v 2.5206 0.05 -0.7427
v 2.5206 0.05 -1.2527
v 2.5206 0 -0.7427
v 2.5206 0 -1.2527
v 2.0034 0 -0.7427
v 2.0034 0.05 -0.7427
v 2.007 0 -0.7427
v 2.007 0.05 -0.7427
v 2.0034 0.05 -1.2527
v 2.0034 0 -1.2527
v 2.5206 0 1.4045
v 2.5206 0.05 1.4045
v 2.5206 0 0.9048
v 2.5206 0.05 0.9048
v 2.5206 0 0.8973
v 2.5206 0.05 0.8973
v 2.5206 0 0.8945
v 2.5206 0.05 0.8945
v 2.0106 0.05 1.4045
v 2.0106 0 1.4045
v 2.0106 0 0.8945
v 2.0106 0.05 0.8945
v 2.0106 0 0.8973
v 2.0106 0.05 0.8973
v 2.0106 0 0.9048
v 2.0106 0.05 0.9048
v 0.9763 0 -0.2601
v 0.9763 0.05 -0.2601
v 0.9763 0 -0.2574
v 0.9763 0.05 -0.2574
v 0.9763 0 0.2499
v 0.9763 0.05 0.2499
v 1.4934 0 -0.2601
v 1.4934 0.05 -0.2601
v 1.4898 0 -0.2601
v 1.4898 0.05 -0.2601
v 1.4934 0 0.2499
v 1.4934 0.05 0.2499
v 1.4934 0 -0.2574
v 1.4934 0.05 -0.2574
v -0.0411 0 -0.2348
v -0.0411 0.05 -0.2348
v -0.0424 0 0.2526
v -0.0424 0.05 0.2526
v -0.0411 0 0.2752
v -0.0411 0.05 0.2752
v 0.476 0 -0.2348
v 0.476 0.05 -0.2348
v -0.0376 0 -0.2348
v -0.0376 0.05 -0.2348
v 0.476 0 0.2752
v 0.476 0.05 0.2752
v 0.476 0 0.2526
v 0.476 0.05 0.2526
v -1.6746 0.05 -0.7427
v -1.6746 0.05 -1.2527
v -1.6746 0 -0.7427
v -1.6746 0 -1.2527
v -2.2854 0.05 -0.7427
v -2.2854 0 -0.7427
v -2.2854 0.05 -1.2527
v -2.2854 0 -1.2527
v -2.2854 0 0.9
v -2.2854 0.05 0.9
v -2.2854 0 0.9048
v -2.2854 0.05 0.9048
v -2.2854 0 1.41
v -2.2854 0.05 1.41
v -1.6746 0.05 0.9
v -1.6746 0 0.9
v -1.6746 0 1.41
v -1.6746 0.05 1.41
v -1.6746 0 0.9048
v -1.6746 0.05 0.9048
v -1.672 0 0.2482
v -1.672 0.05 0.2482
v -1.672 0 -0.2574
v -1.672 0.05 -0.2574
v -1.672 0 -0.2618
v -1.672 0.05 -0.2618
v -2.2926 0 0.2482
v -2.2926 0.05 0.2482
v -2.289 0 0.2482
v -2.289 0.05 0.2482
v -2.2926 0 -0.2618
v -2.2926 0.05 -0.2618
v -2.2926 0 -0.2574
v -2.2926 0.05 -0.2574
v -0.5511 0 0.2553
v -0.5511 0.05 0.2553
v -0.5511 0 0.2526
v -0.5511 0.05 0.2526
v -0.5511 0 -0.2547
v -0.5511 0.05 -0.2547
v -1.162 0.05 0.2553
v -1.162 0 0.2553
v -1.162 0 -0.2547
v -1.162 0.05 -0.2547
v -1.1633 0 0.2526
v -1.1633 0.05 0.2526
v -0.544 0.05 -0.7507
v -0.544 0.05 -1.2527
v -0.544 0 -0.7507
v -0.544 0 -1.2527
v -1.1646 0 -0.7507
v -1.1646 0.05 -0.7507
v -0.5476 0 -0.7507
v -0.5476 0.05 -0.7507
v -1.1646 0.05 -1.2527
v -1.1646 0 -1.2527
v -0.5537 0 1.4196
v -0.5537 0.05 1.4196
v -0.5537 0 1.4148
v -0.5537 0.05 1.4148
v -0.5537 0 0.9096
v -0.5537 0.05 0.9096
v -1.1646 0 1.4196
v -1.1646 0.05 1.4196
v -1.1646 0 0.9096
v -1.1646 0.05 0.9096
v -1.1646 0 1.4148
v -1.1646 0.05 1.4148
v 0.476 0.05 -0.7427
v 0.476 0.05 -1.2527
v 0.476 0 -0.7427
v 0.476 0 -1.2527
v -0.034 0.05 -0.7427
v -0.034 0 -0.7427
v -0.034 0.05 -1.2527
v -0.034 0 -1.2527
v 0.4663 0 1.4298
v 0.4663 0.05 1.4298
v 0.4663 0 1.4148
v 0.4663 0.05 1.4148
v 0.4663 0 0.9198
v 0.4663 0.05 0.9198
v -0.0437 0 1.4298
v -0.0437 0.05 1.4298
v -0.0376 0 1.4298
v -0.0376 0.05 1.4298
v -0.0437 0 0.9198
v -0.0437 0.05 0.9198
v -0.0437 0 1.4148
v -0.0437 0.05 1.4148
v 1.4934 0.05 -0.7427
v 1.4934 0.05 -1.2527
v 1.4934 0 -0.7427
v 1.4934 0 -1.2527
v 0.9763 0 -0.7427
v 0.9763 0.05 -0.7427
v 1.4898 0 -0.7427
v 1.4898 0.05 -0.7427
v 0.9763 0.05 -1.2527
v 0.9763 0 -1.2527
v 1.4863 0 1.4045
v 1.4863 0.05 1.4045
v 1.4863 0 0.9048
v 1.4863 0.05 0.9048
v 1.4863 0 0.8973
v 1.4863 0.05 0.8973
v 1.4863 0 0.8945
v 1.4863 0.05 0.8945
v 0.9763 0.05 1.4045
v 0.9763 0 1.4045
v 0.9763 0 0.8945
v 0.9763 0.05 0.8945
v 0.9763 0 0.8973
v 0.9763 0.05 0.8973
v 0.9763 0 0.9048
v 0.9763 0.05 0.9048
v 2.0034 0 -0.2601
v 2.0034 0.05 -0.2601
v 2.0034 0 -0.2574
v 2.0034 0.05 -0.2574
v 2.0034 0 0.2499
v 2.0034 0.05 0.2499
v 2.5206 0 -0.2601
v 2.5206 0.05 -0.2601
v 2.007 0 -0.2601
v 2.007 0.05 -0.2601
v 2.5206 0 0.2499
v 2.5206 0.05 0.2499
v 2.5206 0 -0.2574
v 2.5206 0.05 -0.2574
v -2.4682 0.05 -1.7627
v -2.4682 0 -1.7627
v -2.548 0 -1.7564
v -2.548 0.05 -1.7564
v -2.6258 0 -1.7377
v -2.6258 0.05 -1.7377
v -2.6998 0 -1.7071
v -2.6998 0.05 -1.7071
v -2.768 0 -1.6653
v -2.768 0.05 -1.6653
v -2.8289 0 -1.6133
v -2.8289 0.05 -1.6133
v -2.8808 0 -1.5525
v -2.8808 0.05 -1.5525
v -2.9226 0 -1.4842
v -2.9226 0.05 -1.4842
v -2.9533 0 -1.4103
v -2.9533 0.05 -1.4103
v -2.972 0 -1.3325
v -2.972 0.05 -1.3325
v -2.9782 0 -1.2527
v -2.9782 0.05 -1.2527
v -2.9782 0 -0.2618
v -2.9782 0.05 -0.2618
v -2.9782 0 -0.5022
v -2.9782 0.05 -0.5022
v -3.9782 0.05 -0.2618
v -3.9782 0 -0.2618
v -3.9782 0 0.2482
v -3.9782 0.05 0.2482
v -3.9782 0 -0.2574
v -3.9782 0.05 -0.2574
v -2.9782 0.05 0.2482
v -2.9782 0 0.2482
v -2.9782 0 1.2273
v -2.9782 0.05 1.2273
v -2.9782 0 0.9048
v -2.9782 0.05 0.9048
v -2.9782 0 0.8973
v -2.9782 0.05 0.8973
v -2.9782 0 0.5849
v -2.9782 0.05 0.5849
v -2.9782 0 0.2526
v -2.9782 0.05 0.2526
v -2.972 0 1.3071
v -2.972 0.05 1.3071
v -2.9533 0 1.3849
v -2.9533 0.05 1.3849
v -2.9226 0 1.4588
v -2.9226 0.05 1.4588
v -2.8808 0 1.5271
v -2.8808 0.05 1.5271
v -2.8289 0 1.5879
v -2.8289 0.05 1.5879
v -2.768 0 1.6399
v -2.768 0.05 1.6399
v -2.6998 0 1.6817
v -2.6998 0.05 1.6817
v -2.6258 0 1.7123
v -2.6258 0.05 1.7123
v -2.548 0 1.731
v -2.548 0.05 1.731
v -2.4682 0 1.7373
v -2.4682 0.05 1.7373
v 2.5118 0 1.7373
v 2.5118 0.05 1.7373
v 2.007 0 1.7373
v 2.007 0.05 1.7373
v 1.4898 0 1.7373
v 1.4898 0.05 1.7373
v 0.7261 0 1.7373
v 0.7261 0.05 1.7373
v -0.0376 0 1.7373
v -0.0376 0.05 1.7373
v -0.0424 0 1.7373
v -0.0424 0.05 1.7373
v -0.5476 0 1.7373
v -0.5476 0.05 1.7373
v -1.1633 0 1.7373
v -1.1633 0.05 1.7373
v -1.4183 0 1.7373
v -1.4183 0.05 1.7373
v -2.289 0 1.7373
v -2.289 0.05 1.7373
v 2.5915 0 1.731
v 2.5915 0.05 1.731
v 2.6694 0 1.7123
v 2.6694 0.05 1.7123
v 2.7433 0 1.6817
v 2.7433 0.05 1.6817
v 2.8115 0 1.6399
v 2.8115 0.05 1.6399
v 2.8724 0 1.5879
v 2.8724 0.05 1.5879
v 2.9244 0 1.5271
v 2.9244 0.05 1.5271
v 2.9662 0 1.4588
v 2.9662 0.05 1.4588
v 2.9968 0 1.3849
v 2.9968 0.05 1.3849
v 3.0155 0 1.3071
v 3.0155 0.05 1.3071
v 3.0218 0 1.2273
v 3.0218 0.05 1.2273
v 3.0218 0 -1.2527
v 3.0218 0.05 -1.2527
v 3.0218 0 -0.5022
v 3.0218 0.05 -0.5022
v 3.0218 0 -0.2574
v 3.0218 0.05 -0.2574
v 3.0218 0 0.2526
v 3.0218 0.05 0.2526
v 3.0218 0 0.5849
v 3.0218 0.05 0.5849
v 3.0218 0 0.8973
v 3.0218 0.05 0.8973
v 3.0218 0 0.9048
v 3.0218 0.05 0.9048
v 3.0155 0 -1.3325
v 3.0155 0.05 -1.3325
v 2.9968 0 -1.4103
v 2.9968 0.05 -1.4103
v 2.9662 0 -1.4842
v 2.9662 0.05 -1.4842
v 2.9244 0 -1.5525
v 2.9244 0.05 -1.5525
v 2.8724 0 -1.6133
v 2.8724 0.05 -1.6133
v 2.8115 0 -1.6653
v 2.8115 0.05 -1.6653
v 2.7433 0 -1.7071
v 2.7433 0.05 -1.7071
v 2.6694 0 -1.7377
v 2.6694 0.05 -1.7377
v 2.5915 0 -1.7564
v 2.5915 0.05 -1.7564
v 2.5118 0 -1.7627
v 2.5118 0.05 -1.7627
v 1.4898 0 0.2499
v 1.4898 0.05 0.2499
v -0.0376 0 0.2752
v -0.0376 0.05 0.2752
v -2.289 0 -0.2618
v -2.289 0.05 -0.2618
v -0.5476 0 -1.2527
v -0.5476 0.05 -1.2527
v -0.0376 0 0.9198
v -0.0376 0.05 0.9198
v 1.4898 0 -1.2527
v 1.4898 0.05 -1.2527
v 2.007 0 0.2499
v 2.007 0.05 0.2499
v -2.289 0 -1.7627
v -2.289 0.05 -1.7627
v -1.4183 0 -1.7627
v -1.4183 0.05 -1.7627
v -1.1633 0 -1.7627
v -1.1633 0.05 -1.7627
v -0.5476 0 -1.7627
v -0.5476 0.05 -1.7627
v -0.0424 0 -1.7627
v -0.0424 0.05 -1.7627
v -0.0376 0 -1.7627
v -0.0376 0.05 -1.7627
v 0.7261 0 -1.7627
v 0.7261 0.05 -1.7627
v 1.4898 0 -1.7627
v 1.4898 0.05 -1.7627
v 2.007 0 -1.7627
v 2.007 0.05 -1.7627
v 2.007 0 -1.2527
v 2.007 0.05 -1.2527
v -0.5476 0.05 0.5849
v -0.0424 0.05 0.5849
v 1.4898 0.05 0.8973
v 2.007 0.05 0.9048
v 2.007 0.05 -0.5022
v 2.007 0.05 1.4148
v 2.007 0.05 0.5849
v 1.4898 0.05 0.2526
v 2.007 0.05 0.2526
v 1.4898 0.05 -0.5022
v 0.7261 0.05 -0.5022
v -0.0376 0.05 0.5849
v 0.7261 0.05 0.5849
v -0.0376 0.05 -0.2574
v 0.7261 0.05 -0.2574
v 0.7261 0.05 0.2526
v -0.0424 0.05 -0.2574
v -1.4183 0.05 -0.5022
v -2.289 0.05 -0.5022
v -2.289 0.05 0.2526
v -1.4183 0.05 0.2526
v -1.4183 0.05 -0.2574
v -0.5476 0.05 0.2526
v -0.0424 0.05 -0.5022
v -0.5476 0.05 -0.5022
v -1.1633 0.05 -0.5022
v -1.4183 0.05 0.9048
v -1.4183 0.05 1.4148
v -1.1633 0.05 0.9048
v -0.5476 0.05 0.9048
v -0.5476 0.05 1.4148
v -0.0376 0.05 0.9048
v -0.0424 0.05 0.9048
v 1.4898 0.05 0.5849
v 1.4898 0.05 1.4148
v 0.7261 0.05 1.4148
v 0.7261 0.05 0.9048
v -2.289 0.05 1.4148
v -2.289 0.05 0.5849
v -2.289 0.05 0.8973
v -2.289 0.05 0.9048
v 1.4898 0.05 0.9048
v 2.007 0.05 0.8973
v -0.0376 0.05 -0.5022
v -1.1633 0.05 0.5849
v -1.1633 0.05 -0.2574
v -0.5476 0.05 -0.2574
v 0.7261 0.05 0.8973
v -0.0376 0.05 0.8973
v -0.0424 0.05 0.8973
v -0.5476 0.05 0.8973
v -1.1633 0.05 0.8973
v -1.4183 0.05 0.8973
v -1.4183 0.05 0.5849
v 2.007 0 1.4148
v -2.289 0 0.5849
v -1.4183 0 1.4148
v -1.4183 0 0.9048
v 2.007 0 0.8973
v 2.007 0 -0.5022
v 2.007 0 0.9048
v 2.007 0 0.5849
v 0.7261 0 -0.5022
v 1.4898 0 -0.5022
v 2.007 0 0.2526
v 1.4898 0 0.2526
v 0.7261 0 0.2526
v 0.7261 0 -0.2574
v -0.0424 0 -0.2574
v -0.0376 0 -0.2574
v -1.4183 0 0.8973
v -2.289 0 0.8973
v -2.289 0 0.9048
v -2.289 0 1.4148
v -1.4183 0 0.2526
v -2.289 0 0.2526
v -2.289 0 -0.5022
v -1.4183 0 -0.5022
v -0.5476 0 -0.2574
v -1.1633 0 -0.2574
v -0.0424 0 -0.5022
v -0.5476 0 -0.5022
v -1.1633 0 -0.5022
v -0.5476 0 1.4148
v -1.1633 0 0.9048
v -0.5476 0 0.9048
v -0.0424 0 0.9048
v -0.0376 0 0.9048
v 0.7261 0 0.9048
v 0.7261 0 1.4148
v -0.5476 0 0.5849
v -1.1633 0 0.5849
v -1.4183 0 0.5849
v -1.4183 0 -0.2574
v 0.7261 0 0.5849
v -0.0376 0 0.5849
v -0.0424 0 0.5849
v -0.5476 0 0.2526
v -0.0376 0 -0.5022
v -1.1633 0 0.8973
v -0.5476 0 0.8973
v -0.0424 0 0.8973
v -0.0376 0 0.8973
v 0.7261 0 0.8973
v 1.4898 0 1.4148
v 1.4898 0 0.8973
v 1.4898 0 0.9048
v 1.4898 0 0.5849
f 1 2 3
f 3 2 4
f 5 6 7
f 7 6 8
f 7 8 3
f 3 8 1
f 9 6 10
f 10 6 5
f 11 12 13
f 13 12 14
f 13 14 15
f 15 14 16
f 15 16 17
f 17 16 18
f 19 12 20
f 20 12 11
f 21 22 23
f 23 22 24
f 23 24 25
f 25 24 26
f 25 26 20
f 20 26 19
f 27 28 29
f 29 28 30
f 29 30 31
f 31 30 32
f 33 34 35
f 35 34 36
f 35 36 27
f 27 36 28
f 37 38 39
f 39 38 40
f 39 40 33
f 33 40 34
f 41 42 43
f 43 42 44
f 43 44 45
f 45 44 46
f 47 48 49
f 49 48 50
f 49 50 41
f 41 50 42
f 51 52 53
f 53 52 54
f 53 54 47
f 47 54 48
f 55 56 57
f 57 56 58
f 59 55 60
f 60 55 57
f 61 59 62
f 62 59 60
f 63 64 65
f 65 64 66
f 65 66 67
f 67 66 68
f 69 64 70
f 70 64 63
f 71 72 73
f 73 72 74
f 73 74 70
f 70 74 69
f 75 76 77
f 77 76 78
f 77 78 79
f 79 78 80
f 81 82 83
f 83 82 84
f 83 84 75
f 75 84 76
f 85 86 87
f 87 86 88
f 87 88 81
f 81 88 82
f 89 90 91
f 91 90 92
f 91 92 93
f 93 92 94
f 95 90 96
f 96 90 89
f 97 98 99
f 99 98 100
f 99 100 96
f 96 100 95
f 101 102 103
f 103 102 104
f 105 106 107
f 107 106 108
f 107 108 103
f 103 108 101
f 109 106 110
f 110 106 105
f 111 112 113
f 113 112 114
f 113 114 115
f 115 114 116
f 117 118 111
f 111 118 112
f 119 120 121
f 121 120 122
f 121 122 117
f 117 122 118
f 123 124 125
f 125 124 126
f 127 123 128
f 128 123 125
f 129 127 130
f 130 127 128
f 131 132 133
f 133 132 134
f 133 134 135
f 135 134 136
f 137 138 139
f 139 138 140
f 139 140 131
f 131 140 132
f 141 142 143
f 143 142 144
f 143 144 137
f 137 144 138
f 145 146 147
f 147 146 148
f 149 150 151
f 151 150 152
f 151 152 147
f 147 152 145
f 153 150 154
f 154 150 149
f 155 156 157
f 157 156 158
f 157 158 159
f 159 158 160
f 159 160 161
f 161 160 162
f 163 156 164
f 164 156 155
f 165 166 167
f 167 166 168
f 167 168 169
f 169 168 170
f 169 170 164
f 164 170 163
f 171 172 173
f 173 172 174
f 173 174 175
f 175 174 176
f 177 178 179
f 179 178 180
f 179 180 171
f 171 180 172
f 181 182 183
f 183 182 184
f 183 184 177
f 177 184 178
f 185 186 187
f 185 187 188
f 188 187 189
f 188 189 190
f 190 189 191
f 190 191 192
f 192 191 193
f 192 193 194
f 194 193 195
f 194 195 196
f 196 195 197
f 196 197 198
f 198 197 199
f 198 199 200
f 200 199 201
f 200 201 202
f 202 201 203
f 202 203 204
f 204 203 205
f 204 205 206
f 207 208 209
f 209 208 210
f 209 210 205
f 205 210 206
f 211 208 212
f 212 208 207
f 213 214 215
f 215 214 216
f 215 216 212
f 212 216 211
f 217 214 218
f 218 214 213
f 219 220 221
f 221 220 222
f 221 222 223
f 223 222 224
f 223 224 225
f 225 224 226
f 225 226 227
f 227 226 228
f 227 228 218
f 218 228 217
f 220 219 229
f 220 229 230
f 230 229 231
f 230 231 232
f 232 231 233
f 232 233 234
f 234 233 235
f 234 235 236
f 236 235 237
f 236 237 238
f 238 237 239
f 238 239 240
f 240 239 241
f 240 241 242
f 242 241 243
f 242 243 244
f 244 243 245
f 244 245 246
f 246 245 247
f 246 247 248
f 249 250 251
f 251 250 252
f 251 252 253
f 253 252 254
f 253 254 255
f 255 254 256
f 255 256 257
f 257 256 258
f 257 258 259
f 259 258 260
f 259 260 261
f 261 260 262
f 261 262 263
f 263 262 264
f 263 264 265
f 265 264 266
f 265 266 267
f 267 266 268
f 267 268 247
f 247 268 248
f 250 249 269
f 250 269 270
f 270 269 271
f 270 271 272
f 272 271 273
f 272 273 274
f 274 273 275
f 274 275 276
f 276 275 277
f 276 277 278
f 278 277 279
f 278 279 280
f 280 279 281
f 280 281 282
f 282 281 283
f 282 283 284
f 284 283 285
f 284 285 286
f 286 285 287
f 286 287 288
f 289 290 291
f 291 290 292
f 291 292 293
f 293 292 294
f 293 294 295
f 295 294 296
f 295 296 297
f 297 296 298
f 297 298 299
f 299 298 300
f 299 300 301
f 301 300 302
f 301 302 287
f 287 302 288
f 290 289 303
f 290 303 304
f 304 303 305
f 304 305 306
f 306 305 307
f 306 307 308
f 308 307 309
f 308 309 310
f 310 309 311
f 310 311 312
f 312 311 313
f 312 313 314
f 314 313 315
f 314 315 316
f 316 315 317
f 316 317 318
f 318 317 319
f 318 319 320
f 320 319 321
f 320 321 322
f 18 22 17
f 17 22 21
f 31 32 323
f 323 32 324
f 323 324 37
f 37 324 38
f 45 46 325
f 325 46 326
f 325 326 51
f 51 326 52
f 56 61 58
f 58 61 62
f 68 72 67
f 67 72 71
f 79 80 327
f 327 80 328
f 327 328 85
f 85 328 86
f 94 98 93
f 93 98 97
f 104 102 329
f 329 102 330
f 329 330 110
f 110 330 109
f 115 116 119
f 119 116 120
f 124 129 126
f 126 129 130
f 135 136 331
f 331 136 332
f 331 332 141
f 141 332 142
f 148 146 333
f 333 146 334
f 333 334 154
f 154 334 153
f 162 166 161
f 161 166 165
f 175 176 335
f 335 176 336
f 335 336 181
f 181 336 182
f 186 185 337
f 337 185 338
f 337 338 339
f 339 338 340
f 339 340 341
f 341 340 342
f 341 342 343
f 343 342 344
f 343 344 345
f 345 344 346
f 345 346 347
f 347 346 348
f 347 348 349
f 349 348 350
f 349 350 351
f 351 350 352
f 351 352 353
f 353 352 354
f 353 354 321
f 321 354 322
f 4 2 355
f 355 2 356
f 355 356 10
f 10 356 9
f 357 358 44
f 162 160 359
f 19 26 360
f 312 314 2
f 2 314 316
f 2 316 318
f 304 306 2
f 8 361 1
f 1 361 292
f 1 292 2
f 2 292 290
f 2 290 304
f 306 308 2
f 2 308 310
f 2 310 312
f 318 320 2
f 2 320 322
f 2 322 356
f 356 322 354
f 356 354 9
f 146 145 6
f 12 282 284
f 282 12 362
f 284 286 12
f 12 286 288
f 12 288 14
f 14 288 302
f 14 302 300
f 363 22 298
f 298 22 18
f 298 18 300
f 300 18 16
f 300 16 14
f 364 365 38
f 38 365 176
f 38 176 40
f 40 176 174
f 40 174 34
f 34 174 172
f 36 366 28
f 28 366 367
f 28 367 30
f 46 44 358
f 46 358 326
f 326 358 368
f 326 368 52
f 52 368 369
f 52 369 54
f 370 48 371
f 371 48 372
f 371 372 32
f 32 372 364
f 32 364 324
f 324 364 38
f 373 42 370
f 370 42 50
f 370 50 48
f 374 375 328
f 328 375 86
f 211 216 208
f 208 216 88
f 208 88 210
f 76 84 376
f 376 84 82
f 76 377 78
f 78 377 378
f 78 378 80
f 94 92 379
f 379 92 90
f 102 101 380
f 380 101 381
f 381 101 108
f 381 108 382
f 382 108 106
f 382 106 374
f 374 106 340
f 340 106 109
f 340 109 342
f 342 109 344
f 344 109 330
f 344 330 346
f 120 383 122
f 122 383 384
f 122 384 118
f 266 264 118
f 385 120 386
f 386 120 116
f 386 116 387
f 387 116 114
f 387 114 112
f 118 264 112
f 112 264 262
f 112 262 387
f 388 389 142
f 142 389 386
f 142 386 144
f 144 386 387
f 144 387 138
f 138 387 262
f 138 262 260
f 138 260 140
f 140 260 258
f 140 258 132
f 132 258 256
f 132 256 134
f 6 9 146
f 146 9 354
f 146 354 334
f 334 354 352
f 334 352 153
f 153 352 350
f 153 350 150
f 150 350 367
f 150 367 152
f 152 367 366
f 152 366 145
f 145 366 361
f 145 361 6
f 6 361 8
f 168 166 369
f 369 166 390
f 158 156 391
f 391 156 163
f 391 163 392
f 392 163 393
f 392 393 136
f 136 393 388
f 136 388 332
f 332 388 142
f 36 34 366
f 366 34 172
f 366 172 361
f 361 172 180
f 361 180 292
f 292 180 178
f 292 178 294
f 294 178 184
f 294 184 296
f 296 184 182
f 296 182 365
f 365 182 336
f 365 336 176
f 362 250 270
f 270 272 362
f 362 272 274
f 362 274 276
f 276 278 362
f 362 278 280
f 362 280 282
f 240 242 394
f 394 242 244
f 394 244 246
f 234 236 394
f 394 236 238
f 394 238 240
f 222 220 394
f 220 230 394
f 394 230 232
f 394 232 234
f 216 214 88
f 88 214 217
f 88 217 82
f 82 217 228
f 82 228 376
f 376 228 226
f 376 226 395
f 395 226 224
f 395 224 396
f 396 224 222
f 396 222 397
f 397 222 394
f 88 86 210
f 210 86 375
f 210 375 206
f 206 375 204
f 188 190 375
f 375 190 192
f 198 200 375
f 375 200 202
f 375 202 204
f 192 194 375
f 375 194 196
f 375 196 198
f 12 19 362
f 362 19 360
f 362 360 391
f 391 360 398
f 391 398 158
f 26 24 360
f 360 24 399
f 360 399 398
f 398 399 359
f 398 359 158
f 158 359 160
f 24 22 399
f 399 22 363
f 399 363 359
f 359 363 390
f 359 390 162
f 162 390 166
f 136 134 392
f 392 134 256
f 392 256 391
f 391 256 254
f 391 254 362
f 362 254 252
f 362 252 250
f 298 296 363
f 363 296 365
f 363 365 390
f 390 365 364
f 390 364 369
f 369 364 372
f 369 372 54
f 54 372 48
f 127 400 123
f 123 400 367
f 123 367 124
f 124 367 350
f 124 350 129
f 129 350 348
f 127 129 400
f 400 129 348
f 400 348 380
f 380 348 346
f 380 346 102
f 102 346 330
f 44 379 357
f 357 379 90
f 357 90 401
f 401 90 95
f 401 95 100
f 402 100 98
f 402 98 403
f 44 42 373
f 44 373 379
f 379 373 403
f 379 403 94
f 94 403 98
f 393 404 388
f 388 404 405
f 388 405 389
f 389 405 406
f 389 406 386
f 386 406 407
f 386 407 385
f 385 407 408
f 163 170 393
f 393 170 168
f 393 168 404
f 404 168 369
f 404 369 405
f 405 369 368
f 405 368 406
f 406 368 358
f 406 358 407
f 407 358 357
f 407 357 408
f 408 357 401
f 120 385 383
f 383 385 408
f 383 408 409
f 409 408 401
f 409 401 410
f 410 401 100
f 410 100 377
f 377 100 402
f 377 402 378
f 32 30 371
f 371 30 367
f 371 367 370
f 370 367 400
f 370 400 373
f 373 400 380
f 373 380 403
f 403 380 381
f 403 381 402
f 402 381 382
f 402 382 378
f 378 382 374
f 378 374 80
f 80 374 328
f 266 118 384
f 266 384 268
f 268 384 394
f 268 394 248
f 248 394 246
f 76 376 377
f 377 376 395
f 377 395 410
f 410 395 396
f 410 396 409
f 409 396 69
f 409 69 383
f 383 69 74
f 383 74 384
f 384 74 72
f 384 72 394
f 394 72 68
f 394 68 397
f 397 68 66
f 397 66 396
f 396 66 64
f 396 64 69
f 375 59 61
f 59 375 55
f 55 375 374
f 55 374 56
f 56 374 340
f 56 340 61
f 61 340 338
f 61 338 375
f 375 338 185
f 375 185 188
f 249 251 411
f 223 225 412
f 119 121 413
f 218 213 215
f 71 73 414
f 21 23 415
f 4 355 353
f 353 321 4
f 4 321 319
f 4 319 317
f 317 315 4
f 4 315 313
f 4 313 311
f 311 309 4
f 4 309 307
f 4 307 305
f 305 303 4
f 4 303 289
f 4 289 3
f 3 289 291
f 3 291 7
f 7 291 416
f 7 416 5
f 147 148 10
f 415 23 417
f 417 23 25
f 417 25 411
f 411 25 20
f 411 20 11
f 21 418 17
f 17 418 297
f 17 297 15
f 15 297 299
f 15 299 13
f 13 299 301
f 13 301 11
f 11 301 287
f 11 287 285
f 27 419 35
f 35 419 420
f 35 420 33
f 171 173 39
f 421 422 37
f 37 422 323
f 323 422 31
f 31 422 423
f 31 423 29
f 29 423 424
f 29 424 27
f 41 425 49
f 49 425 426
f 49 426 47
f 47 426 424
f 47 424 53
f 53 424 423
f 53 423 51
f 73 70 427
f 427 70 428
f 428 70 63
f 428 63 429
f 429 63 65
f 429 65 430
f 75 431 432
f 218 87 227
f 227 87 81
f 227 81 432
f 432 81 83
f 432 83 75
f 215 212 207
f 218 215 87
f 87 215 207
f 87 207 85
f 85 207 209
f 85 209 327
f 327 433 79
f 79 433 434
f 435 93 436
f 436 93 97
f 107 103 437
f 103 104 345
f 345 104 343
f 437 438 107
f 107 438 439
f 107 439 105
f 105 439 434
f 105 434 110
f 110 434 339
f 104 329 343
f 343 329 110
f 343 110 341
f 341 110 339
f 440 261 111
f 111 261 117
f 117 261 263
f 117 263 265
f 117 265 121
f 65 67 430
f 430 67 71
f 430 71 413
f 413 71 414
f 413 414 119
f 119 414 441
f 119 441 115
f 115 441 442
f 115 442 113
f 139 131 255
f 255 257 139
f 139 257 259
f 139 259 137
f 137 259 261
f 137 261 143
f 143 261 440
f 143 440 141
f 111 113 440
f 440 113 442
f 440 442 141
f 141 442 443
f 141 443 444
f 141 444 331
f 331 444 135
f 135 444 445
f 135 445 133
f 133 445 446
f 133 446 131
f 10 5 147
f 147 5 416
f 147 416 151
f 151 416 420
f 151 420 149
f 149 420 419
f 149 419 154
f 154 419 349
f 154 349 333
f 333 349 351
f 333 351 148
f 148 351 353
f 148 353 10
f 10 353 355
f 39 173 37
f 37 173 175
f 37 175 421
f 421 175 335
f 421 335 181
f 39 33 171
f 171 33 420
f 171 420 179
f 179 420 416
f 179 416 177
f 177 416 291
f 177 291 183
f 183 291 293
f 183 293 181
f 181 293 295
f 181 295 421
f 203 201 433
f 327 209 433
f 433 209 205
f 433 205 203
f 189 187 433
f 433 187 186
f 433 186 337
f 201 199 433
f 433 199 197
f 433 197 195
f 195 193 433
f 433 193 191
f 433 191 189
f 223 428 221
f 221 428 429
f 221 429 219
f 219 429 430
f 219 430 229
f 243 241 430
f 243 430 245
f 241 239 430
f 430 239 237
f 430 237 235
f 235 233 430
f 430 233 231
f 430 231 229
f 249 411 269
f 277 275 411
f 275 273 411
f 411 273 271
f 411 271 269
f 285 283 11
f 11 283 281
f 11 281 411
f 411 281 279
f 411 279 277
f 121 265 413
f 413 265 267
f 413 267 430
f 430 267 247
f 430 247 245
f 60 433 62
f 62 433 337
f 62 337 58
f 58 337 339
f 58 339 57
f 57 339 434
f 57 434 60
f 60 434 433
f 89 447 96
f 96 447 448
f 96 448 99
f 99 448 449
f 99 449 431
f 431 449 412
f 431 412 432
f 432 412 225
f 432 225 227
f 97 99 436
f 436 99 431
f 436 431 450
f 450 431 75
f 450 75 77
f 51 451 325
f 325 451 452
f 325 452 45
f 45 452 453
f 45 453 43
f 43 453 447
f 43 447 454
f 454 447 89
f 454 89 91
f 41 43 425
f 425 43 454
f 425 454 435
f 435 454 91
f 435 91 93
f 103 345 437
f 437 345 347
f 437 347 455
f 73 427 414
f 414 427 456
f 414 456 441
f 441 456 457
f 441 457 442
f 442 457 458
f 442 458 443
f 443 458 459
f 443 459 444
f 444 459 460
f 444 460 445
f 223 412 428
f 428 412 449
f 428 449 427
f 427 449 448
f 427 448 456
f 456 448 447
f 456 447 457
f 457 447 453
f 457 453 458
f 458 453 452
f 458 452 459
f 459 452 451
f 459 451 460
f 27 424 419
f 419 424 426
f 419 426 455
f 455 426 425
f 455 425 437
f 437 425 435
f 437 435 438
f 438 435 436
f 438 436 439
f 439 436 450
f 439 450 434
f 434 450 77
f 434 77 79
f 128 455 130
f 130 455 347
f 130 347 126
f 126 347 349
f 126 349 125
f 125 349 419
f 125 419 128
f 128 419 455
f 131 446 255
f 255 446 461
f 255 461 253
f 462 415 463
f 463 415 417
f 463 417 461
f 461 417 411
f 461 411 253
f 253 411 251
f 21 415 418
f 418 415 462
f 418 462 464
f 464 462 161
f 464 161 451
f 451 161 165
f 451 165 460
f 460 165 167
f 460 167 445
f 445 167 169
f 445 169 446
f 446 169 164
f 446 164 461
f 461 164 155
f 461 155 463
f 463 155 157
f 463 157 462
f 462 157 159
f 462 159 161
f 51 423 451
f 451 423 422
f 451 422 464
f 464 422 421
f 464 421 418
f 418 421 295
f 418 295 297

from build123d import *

# Parameters (mm, degrees)
SKETCH5_W           = 0.517150716
SKETCH5_H           = 0.51
SKETCH5_W_2         = 0.610833794
SKETCH5_W_3         = 0.62059831
SKETCH5_H_2         = 0.501976926
SKETCH5_W_4         = 0.610833795
SKETCH5_W_5         = 0.51
SKETCH5_W_6         = 0.517150715
BOSS_EXTRUDE1_DEPTH = 0.05


with BuildPart() as part:
    # Sketch5 → Boss-Extrude1 (new body)
    with BuildSketch(Plane(origin=(0, 0, 0), x_dir=(1, 0, 0), z_dir=(0, 1, 0))):
        with BuildLine():
            Line((-2.46823367, -1.737302974), (2.51176633, -1.737302974))
            ThreePointArc((2.51176633, -1.737302974), (2.872390788, -1.587927433), (3.02176633, -1.227302974))
            Line((3.02176633, -1.227302974), (3.02176633, 1.252697026))
            ThreePointArc((3.02176633, 1.252697026), (2.872390788, 1.613321484), (2.51176633, 1.762697026))
            Line((2.51176633, 1.762697026), (-2.46823367, 1.762697026))
            ThreePointArc((-2.46823367, 1.762697026), (-2.828858129, 1.613321484), (-2.97823367, 1.252697026))
            Line((-2.97823367, 1.252697026), (-2.97823367, 0.261786557))
            Line((-2.97823367, 0.261786557), (-3.97823367, 0.261786557))
            Line((-3.97823367, 0.261786557), (-3.97823367, -0.248213443))
            Line((-3.97823367, -0.248213443), (-2.97823367, -0.248213443))
            Line((-2.97823367, -0.248213443), (-2.97823367, -1.227302974))
            ThreePointArc((-2.97823367, -1.227302974), (-2.828858129, -1.587927433), (-2.46823367, -1.737302974))
        make_face()
        with Locations((0.217439849, -0.020233416)):
            Rectangle(SKETCH5_W, SKETCH5_H, mode=Mode.SUBTRACT)
        with Locations((-1.98, 0.997697026)):
            Rectangle(SKETCH5_W_2, SKETCH5_H, mode=Mode.SUBTRACT)
        with Locations((-1.98, -1.155)):
            Rectangle(SKETCH5_W_2, SKETCH5_H, mode=Mode.SUBTRACT)
        with Locations((-1.982268458, 0.006786557)):
            Rectangle(SKETCH5_W_3, SKETCH5_H, mode=Mode.SUBTRACT)
        with Locations((-0.856552406, -0.000270924)):
            Rectangle(SKETCH5_W_2, SKETCH5_H, mode=Mode.SUBTRACT)
        with Locations((-0.854283948, 1.001708563)):
            Rectangle(SKETCH5_W_3, SKETCH5_H_2, mode=Mode.SUBTRACT)
        with Locations((-0.859166206, -1.164640938)):
            Rectangle(SKETCH5_W_4, SKETCH5_H, mode=Mode.SUBTRACT)
        with Locations((0.221015207, 0.997697026)):
            Rectangle(SKETCH5_W_5, SKETCH5_H, mode=Mode.SUBTRACT)
        with Locations((0.211250692, -1.174838915)):
            Rectangle(SKETCH5_W_5, SKETCH5_H, mode=Mode.SUBTRACT)
        with Locations((2.265552123, -1.149528229)):
            Rectangle(SKETCH5_W_5, SKETCH5_H, mode=Mode.SUBTRACT)
        with Locations((1.23482605, 0.00507727)):
            Rectangle(SKETCH5_W_6, SKETCH5_H, mode=Mode.SUBTRACT)
        with Locations((1.23482605, 0.997697026)):
            Rectangle(SKETCH5_W_6, SKETCH5_H, mode=Mode.SUBTRACT)
        with Locations((1.231250692, -1.149528229)):
            Rectangle(SKETCH5_W_5, SKETCH5_H, mode=Mode.SUBTRACT)
        with Locations((2.261976765, 0.00507727)):
            Rectangle(SKETCH5_W, SKETCH5_H, mode=Mode.SUBTRACT)
        with Locations((2.261976765, 0.997697026)):
            Rectangle(SKETCH5_W, SKETCH5_H, mode=Mode.SUBTRACT)
    extrude(amount=BOSS_EXTRUDE1_DEPTH)


solid = part.part
